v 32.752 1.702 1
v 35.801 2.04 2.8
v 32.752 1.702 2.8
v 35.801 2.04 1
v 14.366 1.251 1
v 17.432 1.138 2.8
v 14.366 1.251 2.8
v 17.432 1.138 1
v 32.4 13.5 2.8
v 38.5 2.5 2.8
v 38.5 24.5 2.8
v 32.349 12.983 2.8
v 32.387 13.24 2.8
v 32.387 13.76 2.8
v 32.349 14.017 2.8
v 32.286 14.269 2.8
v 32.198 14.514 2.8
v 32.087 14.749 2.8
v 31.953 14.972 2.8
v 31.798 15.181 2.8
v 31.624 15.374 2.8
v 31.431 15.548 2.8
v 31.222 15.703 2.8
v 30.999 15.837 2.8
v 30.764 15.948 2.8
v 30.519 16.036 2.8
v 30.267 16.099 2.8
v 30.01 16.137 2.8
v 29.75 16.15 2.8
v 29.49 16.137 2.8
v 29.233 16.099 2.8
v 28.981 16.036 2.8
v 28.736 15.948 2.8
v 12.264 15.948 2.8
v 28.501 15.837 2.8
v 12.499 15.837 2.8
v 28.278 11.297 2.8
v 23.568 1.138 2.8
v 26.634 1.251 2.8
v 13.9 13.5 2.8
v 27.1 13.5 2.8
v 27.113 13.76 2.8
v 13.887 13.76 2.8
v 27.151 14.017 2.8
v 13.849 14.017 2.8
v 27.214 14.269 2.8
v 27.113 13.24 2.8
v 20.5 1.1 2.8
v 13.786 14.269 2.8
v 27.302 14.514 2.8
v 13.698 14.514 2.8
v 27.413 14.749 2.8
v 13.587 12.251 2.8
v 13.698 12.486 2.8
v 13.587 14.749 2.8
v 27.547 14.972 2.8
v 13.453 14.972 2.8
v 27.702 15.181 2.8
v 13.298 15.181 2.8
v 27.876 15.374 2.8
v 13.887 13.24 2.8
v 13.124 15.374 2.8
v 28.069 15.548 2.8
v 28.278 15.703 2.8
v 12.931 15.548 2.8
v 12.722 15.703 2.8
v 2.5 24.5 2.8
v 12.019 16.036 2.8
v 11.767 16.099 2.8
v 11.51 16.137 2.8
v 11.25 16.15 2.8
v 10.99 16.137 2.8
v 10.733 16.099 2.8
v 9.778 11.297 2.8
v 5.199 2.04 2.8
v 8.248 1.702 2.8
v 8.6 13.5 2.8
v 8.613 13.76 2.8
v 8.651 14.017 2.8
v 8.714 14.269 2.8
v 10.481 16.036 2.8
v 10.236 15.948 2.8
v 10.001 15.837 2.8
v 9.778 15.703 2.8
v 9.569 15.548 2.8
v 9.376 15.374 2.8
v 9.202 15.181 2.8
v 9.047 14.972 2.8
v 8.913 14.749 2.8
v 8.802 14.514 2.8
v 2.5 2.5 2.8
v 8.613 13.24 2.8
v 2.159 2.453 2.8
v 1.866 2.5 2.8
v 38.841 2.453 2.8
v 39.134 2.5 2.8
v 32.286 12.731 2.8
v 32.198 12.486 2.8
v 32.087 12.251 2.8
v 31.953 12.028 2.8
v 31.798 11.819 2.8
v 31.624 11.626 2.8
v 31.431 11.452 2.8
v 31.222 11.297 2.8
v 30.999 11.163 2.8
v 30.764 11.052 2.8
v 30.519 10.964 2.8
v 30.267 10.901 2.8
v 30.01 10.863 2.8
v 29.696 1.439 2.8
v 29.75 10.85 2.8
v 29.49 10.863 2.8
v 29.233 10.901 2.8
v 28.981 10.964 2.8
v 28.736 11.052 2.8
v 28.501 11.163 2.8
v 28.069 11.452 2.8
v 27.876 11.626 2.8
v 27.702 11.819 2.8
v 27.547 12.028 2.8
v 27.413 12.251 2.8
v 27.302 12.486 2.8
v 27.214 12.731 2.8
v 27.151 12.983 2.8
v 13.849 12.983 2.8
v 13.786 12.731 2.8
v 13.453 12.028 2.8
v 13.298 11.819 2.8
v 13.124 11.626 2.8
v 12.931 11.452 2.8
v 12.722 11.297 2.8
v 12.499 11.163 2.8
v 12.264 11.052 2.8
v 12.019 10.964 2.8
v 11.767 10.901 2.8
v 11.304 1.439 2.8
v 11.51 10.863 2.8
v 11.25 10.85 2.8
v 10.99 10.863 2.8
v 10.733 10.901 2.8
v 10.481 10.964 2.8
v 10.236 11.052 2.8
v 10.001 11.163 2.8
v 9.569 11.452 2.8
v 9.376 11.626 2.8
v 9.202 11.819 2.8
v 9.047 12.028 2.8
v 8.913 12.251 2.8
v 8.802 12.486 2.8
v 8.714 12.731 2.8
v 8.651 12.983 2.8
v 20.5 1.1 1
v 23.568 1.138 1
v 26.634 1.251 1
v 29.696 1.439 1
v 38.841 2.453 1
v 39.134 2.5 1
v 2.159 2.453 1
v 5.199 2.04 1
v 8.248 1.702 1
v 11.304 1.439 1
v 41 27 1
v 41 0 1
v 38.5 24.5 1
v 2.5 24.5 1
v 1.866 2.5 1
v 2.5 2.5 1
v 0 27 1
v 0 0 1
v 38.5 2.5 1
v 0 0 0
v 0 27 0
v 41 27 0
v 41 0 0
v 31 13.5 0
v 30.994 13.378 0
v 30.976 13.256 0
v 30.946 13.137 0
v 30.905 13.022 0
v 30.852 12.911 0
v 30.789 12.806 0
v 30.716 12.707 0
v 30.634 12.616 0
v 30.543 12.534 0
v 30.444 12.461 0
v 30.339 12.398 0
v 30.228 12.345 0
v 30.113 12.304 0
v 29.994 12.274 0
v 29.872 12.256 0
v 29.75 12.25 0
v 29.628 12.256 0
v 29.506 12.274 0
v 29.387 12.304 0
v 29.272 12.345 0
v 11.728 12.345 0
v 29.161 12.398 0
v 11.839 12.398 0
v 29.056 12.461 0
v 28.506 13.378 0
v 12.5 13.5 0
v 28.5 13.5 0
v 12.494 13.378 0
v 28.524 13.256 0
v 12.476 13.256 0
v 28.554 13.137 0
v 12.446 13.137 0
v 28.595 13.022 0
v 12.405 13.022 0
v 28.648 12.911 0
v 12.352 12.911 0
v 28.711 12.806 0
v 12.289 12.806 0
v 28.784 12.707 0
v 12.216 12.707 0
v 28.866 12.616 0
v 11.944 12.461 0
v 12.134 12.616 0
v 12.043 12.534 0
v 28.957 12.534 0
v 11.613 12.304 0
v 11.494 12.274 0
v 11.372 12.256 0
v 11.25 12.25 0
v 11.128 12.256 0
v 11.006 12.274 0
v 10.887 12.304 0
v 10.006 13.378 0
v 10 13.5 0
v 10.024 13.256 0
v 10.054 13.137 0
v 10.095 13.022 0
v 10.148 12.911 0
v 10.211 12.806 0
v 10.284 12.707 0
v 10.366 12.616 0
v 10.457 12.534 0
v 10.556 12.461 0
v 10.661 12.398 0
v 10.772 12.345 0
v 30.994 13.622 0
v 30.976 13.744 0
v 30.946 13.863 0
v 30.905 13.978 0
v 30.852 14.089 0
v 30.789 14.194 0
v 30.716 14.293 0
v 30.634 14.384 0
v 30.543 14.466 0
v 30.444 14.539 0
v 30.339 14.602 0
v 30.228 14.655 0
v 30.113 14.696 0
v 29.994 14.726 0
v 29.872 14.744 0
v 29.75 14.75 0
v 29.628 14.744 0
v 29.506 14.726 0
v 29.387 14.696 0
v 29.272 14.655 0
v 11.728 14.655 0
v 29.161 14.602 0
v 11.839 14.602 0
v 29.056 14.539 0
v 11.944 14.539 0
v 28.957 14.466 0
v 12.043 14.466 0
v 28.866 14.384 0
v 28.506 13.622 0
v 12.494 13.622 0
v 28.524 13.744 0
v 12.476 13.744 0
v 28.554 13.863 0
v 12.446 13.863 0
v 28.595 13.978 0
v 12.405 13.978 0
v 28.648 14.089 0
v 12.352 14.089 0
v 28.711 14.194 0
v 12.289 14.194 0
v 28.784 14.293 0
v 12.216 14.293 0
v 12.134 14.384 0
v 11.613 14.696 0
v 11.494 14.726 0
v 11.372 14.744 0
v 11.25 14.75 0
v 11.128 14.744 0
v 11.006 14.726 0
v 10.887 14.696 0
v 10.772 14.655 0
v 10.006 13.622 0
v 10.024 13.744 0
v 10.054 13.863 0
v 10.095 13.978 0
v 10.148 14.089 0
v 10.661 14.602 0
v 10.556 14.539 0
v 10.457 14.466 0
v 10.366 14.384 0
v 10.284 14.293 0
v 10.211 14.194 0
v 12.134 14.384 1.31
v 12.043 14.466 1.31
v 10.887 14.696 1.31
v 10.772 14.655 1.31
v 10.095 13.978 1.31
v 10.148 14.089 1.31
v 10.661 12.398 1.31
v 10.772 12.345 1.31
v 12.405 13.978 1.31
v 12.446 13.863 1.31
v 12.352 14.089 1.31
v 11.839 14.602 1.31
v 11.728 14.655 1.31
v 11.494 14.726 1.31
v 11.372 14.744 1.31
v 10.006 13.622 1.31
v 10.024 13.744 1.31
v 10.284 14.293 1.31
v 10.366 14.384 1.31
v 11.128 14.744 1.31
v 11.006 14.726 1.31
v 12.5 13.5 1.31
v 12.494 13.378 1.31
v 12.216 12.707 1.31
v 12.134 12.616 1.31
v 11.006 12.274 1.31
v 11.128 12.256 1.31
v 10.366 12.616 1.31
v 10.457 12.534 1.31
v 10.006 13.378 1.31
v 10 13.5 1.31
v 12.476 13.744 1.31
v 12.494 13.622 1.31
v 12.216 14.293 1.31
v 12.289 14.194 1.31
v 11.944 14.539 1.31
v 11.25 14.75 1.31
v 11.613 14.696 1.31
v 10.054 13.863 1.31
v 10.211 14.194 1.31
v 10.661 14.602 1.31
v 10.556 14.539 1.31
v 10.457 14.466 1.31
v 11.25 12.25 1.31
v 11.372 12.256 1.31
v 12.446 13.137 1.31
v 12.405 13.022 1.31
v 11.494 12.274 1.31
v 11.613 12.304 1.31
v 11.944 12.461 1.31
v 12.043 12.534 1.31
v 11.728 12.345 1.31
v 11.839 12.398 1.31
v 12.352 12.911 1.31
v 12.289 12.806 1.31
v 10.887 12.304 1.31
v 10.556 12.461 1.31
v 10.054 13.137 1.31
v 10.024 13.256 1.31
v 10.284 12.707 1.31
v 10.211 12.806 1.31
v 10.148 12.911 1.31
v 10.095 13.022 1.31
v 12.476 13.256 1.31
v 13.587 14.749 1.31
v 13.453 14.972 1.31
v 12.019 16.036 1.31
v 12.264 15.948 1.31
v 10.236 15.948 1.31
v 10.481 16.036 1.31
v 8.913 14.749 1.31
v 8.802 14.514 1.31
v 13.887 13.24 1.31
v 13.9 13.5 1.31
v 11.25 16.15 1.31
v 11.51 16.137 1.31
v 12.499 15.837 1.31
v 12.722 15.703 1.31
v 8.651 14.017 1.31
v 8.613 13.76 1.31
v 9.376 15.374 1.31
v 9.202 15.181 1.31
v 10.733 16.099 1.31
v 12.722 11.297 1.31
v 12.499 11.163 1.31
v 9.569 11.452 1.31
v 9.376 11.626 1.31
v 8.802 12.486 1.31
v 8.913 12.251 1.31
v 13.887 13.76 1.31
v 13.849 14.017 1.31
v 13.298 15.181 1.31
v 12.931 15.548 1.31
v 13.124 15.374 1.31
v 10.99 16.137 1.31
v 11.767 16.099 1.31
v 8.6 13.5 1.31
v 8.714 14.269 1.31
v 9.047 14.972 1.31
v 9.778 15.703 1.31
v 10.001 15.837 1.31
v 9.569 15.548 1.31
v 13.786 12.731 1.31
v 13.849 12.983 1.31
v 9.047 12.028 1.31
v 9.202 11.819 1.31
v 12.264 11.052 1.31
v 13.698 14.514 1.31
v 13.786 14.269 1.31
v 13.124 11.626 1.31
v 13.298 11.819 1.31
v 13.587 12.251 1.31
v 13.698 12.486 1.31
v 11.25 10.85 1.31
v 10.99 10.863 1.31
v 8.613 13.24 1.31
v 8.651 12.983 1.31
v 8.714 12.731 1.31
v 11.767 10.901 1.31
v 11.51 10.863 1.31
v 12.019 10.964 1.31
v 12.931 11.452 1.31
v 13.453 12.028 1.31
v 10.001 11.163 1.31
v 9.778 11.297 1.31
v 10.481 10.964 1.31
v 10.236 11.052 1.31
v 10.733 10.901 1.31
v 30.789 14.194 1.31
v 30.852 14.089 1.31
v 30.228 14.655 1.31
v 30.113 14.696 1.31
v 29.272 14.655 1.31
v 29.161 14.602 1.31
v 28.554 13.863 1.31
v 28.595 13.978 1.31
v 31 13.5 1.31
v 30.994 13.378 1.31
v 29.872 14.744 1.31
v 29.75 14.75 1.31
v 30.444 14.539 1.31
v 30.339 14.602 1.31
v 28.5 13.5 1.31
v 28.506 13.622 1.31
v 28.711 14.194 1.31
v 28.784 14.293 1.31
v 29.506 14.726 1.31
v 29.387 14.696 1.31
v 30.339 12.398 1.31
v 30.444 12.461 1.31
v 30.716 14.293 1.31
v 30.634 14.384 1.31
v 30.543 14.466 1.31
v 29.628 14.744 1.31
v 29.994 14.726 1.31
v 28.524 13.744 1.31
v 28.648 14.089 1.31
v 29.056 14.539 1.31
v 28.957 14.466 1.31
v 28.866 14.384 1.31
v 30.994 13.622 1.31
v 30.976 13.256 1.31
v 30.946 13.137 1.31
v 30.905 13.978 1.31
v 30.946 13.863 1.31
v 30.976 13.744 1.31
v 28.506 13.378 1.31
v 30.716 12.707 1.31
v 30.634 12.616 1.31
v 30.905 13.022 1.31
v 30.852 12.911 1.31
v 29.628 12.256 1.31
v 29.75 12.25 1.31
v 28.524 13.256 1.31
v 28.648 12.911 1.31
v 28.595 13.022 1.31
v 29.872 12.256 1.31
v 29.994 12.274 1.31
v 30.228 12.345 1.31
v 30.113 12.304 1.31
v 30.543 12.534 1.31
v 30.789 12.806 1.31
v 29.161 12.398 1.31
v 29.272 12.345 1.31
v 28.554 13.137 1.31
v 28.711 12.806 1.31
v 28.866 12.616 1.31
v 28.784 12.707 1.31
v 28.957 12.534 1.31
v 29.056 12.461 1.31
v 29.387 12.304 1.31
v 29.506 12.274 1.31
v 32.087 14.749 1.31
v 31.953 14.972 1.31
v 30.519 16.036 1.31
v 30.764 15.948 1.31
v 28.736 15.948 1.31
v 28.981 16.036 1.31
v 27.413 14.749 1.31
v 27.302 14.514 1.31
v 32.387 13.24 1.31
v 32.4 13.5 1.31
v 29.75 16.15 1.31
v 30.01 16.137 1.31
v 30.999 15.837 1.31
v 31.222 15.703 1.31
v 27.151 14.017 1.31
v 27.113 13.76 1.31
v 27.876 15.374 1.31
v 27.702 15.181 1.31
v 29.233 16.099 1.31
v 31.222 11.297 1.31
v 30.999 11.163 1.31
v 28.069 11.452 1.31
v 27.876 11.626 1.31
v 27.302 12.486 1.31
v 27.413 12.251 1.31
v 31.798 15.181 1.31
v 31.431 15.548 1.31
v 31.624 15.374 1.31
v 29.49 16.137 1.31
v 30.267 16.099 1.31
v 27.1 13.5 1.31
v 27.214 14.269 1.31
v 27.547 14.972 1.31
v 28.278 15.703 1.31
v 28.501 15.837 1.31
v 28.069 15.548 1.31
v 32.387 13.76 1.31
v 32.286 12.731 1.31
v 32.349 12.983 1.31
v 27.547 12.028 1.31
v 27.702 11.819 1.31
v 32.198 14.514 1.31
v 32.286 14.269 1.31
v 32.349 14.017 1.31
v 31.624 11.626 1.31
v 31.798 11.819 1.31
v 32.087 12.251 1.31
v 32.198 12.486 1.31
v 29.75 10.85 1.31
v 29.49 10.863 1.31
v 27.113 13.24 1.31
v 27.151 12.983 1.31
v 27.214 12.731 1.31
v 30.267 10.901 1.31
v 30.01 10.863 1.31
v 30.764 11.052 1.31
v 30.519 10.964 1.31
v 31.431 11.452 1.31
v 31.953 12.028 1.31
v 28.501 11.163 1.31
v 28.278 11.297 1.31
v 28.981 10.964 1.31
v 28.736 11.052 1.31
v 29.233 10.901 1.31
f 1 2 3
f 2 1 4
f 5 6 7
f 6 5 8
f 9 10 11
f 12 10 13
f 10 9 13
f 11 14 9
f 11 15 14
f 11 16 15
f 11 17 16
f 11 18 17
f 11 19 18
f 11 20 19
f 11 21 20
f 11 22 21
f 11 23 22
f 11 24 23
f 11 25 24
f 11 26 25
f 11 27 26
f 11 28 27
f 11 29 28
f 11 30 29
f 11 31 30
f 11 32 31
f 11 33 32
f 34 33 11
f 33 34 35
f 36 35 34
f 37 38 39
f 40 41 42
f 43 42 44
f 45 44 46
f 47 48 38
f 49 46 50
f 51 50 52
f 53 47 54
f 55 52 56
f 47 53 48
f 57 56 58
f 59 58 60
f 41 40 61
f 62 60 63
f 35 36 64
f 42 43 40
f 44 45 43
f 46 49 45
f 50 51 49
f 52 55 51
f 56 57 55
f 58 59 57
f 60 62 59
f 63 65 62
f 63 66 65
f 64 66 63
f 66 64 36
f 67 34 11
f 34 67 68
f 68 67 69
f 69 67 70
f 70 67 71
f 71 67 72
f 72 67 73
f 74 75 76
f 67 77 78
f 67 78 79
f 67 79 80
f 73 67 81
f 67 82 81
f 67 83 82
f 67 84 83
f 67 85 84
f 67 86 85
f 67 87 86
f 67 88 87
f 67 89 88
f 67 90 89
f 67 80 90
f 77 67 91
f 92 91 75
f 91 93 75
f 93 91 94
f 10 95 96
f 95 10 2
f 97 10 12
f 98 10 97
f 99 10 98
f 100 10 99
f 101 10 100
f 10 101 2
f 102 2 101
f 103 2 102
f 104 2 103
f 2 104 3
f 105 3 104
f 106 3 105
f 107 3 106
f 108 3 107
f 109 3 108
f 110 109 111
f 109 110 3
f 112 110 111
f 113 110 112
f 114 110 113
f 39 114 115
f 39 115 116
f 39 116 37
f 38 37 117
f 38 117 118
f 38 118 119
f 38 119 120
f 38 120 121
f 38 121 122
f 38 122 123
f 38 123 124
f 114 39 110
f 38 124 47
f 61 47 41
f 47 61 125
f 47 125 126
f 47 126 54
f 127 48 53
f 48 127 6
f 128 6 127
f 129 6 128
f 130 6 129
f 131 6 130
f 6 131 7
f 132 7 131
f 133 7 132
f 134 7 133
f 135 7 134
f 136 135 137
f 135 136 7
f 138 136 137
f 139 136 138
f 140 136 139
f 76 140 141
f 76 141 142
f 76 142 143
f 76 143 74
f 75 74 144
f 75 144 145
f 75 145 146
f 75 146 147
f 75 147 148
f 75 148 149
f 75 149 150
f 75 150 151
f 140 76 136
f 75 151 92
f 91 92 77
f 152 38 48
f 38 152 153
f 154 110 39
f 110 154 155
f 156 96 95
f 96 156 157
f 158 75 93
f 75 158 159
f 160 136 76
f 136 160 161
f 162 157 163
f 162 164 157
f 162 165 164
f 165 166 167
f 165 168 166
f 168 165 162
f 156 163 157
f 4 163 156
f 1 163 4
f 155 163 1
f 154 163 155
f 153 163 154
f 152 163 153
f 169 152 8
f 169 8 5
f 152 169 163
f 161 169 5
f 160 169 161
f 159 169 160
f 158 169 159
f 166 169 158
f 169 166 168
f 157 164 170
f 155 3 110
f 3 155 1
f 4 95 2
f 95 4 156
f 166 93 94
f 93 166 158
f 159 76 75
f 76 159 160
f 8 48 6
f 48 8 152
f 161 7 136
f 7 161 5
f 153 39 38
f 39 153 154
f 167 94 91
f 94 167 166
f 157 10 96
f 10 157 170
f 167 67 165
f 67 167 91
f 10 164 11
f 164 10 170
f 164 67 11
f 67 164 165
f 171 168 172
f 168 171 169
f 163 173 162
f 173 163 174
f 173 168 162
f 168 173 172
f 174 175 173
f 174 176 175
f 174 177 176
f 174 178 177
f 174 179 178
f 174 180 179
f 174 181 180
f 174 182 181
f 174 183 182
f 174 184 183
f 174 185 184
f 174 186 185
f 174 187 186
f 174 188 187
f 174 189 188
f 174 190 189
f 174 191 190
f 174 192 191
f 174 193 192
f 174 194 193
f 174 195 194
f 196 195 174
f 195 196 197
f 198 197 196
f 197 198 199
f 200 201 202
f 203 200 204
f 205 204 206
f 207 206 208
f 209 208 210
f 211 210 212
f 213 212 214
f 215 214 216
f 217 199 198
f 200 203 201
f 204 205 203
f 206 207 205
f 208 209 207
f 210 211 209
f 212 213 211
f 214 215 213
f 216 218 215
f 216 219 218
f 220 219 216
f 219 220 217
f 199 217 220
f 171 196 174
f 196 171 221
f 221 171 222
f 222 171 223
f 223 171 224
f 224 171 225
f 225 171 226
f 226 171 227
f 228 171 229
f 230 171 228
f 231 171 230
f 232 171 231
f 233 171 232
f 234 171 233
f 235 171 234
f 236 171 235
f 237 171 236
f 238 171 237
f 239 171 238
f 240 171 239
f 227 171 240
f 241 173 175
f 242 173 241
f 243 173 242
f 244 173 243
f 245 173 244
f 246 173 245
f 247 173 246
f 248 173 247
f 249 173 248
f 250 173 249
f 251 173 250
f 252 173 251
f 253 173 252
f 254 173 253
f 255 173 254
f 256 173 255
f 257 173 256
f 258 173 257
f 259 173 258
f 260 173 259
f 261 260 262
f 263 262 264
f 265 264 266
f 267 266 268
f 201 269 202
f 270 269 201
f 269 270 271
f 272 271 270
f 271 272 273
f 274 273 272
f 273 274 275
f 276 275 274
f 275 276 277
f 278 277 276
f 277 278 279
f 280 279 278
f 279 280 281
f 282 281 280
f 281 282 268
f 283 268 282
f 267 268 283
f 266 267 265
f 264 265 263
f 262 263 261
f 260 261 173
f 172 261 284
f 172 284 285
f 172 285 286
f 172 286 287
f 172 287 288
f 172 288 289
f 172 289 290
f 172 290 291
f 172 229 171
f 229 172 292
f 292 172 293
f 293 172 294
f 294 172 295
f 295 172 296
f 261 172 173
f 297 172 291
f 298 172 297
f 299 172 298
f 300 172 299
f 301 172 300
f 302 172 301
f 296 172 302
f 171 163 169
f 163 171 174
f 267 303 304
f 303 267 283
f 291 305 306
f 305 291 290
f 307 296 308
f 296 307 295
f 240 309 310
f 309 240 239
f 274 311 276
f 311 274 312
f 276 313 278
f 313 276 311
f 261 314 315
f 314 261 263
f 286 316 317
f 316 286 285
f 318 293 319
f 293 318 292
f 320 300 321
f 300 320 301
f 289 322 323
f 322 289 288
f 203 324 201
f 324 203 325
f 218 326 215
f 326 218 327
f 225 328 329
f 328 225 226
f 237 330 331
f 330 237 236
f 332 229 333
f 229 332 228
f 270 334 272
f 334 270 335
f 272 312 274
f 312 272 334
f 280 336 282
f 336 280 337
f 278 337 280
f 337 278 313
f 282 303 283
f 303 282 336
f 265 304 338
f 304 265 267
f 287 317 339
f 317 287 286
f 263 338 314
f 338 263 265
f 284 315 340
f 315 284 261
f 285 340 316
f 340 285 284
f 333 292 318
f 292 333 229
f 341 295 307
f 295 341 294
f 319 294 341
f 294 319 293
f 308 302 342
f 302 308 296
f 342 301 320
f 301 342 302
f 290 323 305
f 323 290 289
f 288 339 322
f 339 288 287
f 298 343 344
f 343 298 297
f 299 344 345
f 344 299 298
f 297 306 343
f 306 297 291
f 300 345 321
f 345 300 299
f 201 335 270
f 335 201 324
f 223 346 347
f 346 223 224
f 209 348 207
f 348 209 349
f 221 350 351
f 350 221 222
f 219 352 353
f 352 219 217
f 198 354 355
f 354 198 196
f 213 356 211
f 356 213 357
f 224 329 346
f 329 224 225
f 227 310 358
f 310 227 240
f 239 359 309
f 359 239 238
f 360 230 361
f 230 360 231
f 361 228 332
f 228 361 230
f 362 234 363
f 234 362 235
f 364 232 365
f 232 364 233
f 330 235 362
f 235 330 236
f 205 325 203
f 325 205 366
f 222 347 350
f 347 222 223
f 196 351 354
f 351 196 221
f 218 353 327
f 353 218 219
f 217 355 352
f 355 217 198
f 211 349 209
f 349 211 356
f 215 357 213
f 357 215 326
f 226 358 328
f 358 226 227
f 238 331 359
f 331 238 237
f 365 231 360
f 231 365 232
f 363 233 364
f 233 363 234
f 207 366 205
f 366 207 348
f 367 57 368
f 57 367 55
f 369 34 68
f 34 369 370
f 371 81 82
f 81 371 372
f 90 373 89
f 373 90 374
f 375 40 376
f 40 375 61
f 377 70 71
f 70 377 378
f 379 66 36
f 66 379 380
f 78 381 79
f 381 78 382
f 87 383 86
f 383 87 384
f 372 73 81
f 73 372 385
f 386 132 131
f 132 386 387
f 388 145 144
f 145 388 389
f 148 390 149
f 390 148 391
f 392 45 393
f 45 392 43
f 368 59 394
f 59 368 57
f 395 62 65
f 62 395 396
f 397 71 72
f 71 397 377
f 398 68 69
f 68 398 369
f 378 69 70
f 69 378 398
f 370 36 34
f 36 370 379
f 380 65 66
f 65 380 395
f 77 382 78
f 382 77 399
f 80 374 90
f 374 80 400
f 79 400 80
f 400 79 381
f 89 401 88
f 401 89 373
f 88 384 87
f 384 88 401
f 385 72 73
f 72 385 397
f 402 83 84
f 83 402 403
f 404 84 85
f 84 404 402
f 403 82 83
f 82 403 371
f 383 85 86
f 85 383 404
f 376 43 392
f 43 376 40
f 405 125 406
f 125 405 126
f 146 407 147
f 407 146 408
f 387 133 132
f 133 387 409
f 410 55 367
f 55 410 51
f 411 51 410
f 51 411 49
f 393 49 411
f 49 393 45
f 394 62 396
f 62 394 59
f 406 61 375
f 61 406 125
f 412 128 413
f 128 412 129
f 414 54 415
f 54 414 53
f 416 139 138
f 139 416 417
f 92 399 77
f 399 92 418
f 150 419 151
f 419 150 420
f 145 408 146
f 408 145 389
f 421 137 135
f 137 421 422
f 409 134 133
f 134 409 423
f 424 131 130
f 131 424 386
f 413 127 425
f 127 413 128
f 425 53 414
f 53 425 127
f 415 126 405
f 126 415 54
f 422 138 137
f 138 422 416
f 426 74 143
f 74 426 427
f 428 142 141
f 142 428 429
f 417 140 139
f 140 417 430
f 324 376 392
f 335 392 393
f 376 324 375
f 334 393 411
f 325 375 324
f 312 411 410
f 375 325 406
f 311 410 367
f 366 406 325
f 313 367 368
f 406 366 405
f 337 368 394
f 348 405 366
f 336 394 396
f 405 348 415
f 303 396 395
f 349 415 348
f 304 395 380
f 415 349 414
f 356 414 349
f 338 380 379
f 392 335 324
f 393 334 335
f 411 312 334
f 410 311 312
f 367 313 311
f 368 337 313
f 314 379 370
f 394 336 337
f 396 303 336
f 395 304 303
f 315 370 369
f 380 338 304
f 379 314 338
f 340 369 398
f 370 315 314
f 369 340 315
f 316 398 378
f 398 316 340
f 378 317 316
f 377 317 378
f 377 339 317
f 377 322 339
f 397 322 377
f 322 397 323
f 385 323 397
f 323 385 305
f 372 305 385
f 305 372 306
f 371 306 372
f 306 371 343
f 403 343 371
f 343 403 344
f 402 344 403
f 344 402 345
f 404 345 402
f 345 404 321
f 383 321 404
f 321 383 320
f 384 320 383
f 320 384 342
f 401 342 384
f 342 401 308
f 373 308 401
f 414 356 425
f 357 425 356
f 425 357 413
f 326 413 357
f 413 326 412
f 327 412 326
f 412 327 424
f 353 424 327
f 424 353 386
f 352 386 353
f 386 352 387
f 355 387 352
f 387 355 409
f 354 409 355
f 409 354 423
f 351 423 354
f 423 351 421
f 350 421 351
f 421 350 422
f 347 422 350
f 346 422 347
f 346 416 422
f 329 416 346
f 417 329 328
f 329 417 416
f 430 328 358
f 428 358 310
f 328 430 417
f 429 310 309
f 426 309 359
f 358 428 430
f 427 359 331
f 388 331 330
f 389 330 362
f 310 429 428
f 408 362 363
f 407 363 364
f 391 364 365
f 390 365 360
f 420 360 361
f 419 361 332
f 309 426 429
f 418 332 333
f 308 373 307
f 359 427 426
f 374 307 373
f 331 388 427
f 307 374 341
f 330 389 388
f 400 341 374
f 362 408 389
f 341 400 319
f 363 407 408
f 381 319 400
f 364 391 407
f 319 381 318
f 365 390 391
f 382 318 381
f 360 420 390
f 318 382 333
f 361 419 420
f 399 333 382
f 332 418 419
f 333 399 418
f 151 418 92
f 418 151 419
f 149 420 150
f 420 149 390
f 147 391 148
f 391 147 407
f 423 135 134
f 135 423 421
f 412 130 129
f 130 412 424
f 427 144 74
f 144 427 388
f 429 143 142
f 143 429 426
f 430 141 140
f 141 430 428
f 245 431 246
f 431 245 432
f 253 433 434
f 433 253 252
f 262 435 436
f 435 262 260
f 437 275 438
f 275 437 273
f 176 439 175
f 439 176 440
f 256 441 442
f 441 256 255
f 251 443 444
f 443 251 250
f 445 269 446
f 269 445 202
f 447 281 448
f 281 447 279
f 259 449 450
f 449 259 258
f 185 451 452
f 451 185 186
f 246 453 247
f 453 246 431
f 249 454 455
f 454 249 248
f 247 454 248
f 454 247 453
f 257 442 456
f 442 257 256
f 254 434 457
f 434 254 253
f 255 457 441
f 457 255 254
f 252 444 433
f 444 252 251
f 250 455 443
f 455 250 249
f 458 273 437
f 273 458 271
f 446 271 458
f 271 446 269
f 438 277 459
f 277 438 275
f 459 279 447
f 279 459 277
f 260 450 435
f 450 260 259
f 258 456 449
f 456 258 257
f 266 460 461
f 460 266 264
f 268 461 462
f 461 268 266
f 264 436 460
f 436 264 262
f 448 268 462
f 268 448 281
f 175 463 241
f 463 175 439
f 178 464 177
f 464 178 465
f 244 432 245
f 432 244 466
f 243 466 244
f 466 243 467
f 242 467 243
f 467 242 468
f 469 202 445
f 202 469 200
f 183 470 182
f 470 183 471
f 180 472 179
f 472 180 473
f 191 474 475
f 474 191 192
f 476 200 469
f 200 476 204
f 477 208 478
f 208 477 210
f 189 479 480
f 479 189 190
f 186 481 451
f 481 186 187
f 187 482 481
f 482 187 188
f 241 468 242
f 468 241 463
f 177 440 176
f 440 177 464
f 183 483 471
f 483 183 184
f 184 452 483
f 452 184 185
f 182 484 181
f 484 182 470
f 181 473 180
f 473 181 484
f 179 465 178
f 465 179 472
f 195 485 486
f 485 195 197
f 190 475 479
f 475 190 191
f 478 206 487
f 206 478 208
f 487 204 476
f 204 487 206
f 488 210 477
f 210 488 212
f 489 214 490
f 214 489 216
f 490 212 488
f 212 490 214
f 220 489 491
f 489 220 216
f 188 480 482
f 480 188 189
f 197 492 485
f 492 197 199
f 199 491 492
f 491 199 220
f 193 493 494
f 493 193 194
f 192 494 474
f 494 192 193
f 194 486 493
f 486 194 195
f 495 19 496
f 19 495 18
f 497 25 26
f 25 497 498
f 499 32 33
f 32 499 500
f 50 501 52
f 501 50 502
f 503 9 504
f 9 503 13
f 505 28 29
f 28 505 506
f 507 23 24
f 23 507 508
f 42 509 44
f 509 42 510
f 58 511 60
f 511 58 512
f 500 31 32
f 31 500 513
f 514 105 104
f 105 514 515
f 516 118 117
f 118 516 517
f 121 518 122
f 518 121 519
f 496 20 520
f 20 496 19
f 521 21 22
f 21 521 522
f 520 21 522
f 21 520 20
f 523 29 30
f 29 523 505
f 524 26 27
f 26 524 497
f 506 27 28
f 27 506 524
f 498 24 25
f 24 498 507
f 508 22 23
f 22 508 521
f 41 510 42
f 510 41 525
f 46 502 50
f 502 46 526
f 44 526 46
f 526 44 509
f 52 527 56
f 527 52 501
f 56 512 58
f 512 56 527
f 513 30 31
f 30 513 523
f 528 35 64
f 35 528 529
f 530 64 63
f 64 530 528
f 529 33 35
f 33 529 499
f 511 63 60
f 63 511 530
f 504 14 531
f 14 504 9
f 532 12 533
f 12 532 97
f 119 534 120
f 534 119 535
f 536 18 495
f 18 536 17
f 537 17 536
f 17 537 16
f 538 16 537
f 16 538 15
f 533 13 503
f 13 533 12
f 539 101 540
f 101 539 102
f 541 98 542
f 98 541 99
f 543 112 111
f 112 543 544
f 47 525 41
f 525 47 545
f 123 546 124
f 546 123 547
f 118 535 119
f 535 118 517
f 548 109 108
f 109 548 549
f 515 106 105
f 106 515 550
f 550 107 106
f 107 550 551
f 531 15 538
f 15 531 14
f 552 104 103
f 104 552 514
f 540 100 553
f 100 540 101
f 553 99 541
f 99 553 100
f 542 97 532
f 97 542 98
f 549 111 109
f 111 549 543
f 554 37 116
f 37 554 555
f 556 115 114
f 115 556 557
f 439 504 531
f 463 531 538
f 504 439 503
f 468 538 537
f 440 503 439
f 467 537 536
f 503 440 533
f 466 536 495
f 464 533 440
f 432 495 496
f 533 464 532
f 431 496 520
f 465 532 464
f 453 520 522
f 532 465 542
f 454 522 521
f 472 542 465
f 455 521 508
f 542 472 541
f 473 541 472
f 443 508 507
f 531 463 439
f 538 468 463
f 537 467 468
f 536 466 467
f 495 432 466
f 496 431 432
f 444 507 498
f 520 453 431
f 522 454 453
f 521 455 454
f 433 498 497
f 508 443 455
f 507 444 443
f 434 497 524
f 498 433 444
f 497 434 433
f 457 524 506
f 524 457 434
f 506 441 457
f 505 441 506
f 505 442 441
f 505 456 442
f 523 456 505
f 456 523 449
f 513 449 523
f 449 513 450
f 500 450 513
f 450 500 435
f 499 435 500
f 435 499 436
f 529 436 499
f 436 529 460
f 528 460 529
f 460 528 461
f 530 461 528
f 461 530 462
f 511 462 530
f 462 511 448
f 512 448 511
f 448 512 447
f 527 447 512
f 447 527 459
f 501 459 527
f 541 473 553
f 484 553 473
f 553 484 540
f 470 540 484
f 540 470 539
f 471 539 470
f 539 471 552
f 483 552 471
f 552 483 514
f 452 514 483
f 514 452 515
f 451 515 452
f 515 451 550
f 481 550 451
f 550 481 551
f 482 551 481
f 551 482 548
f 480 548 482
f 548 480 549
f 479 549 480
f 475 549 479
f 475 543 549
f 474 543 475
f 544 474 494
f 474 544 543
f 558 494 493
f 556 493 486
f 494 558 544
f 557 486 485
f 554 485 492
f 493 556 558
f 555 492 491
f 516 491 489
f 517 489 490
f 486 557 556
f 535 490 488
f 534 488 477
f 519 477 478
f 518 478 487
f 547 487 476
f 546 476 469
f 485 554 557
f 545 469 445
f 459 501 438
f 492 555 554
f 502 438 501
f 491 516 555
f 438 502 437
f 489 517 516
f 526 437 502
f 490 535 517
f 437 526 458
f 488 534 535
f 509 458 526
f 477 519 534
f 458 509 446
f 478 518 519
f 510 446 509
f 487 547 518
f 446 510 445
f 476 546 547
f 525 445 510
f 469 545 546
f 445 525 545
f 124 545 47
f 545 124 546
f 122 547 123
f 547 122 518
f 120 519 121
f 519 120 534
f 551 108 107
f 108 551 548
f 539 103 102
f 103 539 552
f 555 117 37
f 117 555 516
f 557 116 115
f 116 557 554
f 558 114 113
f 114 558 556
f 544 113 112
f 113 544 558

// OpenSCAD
$fn = 64;

sunroofWidth = 36;
sunroofLength = 22;
sunroofHeight = 1.8;
sunroofCurveDiameter = 250;
sunroofCurveOffset = 1.4;

overlap = 2.5;

sunroofOverlapWidth = sunroofWidth + 2 * overlap;
sunroofOverlapLength = sunroofLength + 2 * overlap;
sunroofOverlapHeight = 1;

lightPoleDistance = 18.5;
lightPoleScrewHoleDiameter = 2.5;
lightPoleDiameter = 5.3;
lightPoleInset = 1.5;

lightPoleScrewHoleHeight = 10;
lightPoleMountZOffset = -2;


module raisedSunroof() {
    union() {
        cube([sunroofWidth, sunroofLength, sunroofHeight]);
        difference() {
            translate([sunroofWidth/2, sunroofCurveDiameter/2 - sunroofCurveOffset, 0]) cylinder(d= sunroofCurveDiameter, h = sunroofHeight, $fn = 256);
            translate([-sunroofCurveDiameter/2 + sunroofWidth/2, 0, -0.01]) cube([sunroofCurveDiameter, sunroofCurveDiameter, 2 * sunroofHeight]);
        }
    }
}

difference() {
    union() {
        cube([sunroofOverlapWidth, sunroofOverlapLength, sunroofOverlapHeight]);
        translate([overlap, overlap, sunroofOverlapHeight]) raisedSunroof();
    }
    translate([(sunroofOverlapWidth - lightPoleDistance)/2, sunroofOverlapLength/2, lightPoleMountZOffset]) union() {
        insetZPos = -lightPoleMountZOffset + sunroofHeight + sunroofOverlapHeight - lightPoleInset + 0.01;
        cylinder(d = lightPoleScrewHoleDiameter, h = lightPoleScrewHoleHeight);
        translate([0, 0, insetZPos])cylinder(d = lightPoleDiameter, h = lightPoleInset);
        translate([lightPoleDistance, 0, 0]) cylinder(d = lightPoleScrewHoleDiameter, h = lightPoleScrewHoleHeight);
        translate([lightPoleDistance, 0, insetZPos])cylinder(d = lightPoleDiameter, h = lightPoleInset);
    }
}
